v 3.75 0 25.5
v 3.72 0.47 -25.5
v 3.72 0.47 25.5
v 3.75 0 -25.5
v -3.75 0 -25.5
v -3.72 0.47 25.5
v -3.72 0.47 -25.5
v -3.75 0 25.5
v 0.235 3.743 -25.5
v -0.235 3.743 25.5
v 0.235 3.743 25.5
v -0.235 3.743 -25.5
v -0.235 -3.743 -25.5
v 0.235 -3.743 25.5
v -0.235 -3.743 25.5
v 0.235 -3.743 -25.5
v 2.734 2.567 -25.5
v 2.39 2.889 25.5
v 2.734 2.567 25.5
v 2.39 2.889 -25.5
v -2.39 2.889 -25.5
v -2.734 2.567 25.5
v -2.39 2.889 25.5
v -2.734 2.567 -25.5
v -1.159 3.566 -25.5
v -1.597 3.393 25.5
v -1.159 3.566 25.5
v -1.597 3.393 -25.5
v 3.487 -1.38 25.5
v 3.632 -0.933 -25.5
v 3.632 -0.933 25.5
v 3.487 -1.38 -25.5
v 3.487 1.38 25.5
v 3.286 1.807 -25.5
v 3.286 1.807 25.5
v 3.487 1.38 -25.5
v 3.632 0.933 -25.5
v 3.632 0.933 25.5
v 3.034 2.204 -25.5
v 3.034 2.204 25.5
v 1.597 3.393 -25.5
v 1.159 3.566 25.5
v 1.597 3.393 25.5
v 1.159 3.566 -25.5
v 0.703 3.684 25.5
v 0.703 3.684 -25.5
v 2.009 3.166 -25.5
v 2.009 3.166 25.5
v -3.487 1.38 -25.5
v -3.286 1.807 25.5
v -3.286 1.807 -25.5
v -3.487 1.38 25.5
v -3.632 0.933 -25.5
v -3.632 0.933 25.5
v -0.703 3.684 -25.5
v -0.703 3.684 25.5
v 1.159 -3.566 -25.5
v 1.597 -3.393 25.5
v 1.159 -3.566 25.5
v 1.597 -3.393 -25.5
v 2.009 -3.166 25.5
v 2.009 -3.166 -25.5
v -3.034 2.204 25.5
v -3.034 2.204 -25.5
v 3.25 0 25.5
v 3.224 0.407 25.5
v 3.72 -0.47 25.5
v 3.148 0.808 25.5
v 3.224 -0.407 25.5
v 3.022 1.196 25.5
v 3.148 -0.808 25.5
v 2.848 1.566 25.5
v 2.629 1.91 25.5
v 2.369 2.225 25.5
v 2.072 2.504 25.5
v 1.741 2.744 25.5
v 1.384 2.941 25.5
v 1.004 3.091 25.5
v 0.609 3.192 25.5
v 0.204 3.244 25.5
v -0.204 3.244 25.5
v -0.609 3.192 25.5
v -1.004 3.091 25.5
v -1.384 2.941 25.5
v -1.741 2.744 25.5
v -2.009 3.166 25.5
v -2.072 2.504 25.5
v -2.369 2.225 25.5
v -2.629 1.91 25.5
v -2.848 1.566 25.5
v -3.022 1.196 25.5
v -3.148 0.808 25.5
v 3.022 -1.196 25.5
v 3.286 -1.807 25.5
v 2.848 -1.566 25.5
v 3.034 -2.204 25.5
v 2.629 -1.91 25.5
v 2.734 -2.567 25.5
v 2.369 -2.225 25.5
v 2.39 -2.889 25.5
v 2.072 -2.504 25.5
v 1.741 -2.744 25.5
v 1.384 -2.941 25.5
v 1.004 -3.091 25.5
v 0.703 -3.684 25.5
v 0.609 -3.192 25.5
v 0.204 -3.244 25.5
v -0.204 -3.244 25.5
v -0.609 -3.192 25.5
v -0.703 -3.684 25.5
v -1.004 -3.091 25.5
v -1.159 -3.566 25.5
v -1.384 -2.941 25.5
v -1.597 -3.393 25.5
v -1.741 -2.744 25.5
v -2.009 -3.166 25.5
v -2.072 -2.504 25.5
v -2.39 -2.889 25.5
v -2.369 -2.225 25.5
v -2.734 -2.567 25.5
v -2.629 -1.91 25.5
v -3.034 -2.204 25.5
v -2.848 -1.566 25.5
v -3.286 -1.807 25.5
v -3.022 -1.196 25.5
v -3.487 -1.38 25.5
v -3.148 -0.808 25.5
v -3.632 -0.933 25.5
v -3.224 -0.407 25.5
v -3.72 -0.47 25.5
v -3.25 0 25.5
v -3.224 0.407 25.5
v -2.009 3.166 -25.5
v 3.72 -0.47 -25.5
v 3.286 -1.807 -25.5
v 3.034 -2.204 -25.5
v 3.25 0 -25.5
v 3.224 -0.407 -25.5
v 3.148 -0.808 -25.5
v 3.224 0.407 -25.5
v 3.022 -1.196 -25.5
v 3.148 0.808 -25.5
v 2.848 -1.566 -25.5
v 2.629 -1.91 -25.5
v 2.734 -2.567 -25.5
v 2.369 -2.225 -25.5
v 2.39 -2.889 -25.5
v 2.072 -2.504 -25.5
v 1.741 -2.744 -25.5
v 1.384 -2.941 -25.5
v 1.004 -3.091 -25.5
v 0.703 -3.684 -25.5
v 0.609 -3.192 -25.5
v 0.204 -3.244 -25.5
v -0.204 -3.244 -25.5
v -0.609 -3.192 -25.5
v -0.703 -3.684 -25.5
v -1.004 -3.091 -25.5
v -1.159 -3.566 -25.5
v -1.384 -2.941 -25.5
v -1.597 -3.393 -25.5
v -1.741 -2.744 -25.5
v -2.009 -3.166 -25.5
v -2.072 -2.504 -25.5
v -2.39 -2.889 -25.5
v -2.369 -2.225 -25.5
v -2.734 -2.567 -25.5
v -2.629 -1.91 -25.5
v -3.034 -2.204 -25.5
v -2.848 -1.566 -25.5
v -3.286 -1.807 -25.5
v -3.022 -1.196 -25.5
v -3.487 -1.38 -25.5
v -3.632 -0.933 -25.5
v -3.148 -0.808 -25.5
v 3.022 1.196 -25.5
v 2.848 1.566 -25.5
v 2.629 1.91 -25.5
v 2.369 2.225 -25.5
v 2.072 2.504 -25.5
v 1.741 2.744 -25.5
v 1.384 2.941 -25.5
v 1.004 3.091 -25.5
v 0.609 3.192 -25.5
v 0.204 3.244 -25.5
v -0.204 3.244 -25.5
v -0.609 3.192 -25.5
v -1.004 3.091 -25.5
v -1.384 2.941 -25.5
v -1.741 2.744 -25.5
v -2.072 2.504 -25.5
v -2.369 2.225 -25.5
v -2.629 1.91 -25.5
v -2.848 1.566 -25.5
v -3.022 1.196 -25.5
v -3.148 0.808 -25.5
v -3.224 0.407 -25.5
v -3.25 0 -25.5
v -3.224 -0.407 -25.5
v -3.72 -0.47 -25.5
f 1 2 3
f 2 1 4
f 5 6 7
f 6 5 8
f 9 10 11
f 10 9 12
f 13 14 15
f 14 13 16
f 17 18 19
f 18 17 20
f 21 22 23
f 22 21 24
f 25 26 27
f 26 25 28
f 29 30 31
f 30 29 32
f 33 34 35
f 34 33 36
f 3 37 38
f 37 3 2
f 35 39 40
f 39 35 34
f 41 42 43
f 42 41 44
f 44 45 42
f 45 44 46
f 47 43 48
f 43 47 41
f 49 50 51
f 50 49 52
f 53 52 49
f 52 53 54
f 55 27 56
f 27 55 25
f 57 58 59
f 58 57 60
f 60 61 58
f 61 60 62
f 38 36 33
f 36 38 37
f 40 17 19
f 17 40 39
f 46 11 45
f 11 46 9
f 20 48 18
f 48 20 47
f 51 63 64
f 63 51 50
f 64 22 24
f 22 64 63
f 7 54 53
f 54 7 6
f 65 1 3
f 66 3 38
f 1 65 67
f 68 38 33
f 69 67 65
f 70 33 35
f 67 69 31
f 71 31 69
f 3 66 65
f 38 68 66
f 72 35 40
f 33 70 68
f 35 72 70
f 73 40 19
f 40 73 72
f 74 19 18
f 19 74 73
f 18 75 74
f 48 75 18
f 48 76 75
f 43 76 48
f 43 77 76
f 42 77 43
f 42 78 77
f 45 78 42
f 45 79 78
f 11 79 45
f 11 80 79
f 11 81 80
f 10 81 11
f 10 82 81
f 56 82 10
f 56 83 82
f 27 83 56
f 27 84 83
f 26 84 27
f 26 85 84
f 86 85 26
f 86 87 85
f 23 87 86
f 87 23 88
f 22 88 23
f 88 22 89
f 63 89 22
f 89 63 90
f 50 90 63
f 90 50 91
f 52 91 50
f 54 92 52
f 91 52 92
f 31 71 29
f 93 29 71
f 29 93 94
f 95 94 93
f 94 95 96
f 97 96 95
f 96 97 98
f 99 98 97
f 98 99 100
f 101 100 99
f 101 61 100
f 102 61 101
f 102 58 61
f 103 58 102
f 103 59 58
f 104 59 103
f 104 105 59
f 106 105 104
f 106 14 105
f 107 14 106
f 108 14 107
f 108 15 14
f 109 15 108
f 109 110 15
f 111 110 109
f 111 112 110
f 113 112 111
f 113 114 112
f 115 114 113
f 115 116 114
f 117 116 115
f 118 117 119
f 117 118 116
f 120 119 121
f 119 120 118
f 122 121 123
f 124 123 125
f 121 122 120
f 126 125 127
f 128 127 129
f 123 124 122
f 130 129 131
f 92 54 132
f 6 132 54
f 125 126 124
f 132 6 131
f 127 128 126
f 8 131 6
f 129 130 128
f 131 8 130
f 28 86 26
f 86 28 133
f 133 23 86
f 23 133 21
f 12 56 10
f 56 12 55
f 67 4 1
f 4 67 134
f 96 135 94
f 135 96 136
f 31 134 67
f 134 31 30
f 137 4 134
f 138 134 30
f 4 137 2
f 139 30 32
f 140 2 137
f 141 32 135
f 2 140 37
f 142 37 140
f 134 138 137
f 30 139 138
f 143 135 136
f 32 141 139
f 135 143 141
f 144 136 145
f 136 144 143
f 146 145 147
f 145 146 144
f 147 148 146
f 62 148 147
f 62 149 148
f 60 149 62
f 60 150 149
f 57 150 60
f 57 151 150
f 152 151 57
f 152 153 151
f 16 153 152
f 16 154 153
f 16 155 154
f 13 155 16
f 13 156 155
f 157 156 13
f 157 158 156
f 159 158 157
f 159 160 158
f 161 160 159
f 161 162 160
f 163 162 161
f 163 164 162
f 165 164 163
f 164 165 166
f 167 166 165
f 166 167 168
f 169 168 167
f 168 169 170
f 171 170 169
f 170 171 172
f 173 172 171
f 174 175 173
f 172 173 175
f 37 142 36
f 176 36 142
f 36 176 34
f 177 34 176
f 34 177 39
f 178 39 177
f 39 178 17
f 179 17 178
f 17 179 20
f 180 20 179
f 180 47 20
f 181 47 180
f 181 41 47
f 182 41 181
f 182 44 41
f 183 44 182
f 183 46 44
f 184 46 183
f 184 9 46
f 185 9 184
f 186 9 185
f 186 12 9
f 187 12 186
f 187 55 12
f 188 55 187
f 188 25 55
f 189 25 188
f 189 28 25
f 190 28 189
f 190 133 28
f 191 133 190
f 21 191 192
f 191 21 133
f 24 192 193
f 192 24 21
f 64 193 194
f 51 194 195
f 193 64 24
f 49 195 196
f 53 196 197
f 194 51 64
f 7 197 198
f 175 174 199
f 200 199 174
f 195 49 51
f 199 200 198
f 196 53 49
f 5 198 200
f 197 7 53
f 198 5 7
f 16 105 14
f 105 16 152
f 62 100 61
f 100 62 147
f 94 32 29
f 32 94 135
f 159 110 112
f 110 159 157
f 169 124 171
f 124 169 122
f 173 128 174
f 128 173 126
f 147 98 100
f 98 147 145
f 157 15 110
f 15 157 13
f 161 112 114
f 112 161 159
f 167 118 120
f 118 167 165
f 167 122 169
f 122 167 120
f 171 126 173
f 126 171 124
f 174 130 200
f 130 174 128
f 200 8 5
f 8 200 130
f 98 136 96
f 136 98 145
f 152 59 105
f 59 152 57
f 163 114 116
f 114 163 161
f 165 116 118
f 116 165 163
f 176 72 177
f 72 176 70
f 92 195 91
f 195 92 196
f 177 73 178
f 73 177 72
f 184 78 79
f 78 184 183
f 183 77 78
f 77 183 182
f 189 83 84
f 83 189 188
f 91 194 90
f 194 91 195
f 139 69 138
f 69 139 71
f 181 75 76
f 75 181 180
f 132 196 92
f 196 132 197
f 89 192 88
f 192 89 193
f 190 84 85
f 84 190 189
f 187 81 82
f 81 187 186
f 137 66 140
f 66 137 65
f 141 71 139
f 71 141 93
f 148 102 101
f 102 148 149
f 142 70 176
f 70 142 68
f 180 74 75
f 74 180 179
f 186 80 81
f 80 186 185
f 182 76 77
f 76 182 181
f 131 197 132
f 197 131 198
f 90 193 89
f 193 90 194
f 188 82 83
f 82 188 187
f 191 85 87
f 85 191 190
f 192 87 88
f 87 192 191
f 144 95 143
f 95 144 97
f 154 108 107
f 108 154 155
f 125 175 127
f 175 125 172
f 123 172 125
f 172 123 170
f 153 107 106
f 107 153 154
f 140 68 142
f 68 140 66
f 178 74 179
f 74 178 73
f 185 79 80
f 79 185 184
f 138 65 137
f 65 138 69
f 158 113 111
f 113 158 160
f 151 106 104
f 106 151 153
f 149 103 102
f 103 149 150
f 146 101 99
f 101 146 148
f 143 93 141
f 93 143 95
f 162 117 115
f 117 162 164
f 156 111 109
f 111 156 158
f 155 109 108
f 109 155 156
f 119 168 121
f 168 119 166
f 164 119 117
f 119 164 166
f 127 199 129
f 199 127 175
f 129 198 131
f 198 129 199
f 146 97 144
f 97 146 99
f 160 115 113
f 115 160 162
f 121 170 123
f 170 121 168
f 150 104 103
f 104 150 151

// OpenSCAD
$fn = 50;


difference() {
	union() {
		translate(v = [0, 0, -25.5000000000]) {
			cylinder(h = 51, r = 3.7500000000);
		}
	}
	union() {
		translate(v = [0, 0, -100.0000000000]) {
			cylinder(h = 200, r = 3.2500000000);
		}
	}
}
